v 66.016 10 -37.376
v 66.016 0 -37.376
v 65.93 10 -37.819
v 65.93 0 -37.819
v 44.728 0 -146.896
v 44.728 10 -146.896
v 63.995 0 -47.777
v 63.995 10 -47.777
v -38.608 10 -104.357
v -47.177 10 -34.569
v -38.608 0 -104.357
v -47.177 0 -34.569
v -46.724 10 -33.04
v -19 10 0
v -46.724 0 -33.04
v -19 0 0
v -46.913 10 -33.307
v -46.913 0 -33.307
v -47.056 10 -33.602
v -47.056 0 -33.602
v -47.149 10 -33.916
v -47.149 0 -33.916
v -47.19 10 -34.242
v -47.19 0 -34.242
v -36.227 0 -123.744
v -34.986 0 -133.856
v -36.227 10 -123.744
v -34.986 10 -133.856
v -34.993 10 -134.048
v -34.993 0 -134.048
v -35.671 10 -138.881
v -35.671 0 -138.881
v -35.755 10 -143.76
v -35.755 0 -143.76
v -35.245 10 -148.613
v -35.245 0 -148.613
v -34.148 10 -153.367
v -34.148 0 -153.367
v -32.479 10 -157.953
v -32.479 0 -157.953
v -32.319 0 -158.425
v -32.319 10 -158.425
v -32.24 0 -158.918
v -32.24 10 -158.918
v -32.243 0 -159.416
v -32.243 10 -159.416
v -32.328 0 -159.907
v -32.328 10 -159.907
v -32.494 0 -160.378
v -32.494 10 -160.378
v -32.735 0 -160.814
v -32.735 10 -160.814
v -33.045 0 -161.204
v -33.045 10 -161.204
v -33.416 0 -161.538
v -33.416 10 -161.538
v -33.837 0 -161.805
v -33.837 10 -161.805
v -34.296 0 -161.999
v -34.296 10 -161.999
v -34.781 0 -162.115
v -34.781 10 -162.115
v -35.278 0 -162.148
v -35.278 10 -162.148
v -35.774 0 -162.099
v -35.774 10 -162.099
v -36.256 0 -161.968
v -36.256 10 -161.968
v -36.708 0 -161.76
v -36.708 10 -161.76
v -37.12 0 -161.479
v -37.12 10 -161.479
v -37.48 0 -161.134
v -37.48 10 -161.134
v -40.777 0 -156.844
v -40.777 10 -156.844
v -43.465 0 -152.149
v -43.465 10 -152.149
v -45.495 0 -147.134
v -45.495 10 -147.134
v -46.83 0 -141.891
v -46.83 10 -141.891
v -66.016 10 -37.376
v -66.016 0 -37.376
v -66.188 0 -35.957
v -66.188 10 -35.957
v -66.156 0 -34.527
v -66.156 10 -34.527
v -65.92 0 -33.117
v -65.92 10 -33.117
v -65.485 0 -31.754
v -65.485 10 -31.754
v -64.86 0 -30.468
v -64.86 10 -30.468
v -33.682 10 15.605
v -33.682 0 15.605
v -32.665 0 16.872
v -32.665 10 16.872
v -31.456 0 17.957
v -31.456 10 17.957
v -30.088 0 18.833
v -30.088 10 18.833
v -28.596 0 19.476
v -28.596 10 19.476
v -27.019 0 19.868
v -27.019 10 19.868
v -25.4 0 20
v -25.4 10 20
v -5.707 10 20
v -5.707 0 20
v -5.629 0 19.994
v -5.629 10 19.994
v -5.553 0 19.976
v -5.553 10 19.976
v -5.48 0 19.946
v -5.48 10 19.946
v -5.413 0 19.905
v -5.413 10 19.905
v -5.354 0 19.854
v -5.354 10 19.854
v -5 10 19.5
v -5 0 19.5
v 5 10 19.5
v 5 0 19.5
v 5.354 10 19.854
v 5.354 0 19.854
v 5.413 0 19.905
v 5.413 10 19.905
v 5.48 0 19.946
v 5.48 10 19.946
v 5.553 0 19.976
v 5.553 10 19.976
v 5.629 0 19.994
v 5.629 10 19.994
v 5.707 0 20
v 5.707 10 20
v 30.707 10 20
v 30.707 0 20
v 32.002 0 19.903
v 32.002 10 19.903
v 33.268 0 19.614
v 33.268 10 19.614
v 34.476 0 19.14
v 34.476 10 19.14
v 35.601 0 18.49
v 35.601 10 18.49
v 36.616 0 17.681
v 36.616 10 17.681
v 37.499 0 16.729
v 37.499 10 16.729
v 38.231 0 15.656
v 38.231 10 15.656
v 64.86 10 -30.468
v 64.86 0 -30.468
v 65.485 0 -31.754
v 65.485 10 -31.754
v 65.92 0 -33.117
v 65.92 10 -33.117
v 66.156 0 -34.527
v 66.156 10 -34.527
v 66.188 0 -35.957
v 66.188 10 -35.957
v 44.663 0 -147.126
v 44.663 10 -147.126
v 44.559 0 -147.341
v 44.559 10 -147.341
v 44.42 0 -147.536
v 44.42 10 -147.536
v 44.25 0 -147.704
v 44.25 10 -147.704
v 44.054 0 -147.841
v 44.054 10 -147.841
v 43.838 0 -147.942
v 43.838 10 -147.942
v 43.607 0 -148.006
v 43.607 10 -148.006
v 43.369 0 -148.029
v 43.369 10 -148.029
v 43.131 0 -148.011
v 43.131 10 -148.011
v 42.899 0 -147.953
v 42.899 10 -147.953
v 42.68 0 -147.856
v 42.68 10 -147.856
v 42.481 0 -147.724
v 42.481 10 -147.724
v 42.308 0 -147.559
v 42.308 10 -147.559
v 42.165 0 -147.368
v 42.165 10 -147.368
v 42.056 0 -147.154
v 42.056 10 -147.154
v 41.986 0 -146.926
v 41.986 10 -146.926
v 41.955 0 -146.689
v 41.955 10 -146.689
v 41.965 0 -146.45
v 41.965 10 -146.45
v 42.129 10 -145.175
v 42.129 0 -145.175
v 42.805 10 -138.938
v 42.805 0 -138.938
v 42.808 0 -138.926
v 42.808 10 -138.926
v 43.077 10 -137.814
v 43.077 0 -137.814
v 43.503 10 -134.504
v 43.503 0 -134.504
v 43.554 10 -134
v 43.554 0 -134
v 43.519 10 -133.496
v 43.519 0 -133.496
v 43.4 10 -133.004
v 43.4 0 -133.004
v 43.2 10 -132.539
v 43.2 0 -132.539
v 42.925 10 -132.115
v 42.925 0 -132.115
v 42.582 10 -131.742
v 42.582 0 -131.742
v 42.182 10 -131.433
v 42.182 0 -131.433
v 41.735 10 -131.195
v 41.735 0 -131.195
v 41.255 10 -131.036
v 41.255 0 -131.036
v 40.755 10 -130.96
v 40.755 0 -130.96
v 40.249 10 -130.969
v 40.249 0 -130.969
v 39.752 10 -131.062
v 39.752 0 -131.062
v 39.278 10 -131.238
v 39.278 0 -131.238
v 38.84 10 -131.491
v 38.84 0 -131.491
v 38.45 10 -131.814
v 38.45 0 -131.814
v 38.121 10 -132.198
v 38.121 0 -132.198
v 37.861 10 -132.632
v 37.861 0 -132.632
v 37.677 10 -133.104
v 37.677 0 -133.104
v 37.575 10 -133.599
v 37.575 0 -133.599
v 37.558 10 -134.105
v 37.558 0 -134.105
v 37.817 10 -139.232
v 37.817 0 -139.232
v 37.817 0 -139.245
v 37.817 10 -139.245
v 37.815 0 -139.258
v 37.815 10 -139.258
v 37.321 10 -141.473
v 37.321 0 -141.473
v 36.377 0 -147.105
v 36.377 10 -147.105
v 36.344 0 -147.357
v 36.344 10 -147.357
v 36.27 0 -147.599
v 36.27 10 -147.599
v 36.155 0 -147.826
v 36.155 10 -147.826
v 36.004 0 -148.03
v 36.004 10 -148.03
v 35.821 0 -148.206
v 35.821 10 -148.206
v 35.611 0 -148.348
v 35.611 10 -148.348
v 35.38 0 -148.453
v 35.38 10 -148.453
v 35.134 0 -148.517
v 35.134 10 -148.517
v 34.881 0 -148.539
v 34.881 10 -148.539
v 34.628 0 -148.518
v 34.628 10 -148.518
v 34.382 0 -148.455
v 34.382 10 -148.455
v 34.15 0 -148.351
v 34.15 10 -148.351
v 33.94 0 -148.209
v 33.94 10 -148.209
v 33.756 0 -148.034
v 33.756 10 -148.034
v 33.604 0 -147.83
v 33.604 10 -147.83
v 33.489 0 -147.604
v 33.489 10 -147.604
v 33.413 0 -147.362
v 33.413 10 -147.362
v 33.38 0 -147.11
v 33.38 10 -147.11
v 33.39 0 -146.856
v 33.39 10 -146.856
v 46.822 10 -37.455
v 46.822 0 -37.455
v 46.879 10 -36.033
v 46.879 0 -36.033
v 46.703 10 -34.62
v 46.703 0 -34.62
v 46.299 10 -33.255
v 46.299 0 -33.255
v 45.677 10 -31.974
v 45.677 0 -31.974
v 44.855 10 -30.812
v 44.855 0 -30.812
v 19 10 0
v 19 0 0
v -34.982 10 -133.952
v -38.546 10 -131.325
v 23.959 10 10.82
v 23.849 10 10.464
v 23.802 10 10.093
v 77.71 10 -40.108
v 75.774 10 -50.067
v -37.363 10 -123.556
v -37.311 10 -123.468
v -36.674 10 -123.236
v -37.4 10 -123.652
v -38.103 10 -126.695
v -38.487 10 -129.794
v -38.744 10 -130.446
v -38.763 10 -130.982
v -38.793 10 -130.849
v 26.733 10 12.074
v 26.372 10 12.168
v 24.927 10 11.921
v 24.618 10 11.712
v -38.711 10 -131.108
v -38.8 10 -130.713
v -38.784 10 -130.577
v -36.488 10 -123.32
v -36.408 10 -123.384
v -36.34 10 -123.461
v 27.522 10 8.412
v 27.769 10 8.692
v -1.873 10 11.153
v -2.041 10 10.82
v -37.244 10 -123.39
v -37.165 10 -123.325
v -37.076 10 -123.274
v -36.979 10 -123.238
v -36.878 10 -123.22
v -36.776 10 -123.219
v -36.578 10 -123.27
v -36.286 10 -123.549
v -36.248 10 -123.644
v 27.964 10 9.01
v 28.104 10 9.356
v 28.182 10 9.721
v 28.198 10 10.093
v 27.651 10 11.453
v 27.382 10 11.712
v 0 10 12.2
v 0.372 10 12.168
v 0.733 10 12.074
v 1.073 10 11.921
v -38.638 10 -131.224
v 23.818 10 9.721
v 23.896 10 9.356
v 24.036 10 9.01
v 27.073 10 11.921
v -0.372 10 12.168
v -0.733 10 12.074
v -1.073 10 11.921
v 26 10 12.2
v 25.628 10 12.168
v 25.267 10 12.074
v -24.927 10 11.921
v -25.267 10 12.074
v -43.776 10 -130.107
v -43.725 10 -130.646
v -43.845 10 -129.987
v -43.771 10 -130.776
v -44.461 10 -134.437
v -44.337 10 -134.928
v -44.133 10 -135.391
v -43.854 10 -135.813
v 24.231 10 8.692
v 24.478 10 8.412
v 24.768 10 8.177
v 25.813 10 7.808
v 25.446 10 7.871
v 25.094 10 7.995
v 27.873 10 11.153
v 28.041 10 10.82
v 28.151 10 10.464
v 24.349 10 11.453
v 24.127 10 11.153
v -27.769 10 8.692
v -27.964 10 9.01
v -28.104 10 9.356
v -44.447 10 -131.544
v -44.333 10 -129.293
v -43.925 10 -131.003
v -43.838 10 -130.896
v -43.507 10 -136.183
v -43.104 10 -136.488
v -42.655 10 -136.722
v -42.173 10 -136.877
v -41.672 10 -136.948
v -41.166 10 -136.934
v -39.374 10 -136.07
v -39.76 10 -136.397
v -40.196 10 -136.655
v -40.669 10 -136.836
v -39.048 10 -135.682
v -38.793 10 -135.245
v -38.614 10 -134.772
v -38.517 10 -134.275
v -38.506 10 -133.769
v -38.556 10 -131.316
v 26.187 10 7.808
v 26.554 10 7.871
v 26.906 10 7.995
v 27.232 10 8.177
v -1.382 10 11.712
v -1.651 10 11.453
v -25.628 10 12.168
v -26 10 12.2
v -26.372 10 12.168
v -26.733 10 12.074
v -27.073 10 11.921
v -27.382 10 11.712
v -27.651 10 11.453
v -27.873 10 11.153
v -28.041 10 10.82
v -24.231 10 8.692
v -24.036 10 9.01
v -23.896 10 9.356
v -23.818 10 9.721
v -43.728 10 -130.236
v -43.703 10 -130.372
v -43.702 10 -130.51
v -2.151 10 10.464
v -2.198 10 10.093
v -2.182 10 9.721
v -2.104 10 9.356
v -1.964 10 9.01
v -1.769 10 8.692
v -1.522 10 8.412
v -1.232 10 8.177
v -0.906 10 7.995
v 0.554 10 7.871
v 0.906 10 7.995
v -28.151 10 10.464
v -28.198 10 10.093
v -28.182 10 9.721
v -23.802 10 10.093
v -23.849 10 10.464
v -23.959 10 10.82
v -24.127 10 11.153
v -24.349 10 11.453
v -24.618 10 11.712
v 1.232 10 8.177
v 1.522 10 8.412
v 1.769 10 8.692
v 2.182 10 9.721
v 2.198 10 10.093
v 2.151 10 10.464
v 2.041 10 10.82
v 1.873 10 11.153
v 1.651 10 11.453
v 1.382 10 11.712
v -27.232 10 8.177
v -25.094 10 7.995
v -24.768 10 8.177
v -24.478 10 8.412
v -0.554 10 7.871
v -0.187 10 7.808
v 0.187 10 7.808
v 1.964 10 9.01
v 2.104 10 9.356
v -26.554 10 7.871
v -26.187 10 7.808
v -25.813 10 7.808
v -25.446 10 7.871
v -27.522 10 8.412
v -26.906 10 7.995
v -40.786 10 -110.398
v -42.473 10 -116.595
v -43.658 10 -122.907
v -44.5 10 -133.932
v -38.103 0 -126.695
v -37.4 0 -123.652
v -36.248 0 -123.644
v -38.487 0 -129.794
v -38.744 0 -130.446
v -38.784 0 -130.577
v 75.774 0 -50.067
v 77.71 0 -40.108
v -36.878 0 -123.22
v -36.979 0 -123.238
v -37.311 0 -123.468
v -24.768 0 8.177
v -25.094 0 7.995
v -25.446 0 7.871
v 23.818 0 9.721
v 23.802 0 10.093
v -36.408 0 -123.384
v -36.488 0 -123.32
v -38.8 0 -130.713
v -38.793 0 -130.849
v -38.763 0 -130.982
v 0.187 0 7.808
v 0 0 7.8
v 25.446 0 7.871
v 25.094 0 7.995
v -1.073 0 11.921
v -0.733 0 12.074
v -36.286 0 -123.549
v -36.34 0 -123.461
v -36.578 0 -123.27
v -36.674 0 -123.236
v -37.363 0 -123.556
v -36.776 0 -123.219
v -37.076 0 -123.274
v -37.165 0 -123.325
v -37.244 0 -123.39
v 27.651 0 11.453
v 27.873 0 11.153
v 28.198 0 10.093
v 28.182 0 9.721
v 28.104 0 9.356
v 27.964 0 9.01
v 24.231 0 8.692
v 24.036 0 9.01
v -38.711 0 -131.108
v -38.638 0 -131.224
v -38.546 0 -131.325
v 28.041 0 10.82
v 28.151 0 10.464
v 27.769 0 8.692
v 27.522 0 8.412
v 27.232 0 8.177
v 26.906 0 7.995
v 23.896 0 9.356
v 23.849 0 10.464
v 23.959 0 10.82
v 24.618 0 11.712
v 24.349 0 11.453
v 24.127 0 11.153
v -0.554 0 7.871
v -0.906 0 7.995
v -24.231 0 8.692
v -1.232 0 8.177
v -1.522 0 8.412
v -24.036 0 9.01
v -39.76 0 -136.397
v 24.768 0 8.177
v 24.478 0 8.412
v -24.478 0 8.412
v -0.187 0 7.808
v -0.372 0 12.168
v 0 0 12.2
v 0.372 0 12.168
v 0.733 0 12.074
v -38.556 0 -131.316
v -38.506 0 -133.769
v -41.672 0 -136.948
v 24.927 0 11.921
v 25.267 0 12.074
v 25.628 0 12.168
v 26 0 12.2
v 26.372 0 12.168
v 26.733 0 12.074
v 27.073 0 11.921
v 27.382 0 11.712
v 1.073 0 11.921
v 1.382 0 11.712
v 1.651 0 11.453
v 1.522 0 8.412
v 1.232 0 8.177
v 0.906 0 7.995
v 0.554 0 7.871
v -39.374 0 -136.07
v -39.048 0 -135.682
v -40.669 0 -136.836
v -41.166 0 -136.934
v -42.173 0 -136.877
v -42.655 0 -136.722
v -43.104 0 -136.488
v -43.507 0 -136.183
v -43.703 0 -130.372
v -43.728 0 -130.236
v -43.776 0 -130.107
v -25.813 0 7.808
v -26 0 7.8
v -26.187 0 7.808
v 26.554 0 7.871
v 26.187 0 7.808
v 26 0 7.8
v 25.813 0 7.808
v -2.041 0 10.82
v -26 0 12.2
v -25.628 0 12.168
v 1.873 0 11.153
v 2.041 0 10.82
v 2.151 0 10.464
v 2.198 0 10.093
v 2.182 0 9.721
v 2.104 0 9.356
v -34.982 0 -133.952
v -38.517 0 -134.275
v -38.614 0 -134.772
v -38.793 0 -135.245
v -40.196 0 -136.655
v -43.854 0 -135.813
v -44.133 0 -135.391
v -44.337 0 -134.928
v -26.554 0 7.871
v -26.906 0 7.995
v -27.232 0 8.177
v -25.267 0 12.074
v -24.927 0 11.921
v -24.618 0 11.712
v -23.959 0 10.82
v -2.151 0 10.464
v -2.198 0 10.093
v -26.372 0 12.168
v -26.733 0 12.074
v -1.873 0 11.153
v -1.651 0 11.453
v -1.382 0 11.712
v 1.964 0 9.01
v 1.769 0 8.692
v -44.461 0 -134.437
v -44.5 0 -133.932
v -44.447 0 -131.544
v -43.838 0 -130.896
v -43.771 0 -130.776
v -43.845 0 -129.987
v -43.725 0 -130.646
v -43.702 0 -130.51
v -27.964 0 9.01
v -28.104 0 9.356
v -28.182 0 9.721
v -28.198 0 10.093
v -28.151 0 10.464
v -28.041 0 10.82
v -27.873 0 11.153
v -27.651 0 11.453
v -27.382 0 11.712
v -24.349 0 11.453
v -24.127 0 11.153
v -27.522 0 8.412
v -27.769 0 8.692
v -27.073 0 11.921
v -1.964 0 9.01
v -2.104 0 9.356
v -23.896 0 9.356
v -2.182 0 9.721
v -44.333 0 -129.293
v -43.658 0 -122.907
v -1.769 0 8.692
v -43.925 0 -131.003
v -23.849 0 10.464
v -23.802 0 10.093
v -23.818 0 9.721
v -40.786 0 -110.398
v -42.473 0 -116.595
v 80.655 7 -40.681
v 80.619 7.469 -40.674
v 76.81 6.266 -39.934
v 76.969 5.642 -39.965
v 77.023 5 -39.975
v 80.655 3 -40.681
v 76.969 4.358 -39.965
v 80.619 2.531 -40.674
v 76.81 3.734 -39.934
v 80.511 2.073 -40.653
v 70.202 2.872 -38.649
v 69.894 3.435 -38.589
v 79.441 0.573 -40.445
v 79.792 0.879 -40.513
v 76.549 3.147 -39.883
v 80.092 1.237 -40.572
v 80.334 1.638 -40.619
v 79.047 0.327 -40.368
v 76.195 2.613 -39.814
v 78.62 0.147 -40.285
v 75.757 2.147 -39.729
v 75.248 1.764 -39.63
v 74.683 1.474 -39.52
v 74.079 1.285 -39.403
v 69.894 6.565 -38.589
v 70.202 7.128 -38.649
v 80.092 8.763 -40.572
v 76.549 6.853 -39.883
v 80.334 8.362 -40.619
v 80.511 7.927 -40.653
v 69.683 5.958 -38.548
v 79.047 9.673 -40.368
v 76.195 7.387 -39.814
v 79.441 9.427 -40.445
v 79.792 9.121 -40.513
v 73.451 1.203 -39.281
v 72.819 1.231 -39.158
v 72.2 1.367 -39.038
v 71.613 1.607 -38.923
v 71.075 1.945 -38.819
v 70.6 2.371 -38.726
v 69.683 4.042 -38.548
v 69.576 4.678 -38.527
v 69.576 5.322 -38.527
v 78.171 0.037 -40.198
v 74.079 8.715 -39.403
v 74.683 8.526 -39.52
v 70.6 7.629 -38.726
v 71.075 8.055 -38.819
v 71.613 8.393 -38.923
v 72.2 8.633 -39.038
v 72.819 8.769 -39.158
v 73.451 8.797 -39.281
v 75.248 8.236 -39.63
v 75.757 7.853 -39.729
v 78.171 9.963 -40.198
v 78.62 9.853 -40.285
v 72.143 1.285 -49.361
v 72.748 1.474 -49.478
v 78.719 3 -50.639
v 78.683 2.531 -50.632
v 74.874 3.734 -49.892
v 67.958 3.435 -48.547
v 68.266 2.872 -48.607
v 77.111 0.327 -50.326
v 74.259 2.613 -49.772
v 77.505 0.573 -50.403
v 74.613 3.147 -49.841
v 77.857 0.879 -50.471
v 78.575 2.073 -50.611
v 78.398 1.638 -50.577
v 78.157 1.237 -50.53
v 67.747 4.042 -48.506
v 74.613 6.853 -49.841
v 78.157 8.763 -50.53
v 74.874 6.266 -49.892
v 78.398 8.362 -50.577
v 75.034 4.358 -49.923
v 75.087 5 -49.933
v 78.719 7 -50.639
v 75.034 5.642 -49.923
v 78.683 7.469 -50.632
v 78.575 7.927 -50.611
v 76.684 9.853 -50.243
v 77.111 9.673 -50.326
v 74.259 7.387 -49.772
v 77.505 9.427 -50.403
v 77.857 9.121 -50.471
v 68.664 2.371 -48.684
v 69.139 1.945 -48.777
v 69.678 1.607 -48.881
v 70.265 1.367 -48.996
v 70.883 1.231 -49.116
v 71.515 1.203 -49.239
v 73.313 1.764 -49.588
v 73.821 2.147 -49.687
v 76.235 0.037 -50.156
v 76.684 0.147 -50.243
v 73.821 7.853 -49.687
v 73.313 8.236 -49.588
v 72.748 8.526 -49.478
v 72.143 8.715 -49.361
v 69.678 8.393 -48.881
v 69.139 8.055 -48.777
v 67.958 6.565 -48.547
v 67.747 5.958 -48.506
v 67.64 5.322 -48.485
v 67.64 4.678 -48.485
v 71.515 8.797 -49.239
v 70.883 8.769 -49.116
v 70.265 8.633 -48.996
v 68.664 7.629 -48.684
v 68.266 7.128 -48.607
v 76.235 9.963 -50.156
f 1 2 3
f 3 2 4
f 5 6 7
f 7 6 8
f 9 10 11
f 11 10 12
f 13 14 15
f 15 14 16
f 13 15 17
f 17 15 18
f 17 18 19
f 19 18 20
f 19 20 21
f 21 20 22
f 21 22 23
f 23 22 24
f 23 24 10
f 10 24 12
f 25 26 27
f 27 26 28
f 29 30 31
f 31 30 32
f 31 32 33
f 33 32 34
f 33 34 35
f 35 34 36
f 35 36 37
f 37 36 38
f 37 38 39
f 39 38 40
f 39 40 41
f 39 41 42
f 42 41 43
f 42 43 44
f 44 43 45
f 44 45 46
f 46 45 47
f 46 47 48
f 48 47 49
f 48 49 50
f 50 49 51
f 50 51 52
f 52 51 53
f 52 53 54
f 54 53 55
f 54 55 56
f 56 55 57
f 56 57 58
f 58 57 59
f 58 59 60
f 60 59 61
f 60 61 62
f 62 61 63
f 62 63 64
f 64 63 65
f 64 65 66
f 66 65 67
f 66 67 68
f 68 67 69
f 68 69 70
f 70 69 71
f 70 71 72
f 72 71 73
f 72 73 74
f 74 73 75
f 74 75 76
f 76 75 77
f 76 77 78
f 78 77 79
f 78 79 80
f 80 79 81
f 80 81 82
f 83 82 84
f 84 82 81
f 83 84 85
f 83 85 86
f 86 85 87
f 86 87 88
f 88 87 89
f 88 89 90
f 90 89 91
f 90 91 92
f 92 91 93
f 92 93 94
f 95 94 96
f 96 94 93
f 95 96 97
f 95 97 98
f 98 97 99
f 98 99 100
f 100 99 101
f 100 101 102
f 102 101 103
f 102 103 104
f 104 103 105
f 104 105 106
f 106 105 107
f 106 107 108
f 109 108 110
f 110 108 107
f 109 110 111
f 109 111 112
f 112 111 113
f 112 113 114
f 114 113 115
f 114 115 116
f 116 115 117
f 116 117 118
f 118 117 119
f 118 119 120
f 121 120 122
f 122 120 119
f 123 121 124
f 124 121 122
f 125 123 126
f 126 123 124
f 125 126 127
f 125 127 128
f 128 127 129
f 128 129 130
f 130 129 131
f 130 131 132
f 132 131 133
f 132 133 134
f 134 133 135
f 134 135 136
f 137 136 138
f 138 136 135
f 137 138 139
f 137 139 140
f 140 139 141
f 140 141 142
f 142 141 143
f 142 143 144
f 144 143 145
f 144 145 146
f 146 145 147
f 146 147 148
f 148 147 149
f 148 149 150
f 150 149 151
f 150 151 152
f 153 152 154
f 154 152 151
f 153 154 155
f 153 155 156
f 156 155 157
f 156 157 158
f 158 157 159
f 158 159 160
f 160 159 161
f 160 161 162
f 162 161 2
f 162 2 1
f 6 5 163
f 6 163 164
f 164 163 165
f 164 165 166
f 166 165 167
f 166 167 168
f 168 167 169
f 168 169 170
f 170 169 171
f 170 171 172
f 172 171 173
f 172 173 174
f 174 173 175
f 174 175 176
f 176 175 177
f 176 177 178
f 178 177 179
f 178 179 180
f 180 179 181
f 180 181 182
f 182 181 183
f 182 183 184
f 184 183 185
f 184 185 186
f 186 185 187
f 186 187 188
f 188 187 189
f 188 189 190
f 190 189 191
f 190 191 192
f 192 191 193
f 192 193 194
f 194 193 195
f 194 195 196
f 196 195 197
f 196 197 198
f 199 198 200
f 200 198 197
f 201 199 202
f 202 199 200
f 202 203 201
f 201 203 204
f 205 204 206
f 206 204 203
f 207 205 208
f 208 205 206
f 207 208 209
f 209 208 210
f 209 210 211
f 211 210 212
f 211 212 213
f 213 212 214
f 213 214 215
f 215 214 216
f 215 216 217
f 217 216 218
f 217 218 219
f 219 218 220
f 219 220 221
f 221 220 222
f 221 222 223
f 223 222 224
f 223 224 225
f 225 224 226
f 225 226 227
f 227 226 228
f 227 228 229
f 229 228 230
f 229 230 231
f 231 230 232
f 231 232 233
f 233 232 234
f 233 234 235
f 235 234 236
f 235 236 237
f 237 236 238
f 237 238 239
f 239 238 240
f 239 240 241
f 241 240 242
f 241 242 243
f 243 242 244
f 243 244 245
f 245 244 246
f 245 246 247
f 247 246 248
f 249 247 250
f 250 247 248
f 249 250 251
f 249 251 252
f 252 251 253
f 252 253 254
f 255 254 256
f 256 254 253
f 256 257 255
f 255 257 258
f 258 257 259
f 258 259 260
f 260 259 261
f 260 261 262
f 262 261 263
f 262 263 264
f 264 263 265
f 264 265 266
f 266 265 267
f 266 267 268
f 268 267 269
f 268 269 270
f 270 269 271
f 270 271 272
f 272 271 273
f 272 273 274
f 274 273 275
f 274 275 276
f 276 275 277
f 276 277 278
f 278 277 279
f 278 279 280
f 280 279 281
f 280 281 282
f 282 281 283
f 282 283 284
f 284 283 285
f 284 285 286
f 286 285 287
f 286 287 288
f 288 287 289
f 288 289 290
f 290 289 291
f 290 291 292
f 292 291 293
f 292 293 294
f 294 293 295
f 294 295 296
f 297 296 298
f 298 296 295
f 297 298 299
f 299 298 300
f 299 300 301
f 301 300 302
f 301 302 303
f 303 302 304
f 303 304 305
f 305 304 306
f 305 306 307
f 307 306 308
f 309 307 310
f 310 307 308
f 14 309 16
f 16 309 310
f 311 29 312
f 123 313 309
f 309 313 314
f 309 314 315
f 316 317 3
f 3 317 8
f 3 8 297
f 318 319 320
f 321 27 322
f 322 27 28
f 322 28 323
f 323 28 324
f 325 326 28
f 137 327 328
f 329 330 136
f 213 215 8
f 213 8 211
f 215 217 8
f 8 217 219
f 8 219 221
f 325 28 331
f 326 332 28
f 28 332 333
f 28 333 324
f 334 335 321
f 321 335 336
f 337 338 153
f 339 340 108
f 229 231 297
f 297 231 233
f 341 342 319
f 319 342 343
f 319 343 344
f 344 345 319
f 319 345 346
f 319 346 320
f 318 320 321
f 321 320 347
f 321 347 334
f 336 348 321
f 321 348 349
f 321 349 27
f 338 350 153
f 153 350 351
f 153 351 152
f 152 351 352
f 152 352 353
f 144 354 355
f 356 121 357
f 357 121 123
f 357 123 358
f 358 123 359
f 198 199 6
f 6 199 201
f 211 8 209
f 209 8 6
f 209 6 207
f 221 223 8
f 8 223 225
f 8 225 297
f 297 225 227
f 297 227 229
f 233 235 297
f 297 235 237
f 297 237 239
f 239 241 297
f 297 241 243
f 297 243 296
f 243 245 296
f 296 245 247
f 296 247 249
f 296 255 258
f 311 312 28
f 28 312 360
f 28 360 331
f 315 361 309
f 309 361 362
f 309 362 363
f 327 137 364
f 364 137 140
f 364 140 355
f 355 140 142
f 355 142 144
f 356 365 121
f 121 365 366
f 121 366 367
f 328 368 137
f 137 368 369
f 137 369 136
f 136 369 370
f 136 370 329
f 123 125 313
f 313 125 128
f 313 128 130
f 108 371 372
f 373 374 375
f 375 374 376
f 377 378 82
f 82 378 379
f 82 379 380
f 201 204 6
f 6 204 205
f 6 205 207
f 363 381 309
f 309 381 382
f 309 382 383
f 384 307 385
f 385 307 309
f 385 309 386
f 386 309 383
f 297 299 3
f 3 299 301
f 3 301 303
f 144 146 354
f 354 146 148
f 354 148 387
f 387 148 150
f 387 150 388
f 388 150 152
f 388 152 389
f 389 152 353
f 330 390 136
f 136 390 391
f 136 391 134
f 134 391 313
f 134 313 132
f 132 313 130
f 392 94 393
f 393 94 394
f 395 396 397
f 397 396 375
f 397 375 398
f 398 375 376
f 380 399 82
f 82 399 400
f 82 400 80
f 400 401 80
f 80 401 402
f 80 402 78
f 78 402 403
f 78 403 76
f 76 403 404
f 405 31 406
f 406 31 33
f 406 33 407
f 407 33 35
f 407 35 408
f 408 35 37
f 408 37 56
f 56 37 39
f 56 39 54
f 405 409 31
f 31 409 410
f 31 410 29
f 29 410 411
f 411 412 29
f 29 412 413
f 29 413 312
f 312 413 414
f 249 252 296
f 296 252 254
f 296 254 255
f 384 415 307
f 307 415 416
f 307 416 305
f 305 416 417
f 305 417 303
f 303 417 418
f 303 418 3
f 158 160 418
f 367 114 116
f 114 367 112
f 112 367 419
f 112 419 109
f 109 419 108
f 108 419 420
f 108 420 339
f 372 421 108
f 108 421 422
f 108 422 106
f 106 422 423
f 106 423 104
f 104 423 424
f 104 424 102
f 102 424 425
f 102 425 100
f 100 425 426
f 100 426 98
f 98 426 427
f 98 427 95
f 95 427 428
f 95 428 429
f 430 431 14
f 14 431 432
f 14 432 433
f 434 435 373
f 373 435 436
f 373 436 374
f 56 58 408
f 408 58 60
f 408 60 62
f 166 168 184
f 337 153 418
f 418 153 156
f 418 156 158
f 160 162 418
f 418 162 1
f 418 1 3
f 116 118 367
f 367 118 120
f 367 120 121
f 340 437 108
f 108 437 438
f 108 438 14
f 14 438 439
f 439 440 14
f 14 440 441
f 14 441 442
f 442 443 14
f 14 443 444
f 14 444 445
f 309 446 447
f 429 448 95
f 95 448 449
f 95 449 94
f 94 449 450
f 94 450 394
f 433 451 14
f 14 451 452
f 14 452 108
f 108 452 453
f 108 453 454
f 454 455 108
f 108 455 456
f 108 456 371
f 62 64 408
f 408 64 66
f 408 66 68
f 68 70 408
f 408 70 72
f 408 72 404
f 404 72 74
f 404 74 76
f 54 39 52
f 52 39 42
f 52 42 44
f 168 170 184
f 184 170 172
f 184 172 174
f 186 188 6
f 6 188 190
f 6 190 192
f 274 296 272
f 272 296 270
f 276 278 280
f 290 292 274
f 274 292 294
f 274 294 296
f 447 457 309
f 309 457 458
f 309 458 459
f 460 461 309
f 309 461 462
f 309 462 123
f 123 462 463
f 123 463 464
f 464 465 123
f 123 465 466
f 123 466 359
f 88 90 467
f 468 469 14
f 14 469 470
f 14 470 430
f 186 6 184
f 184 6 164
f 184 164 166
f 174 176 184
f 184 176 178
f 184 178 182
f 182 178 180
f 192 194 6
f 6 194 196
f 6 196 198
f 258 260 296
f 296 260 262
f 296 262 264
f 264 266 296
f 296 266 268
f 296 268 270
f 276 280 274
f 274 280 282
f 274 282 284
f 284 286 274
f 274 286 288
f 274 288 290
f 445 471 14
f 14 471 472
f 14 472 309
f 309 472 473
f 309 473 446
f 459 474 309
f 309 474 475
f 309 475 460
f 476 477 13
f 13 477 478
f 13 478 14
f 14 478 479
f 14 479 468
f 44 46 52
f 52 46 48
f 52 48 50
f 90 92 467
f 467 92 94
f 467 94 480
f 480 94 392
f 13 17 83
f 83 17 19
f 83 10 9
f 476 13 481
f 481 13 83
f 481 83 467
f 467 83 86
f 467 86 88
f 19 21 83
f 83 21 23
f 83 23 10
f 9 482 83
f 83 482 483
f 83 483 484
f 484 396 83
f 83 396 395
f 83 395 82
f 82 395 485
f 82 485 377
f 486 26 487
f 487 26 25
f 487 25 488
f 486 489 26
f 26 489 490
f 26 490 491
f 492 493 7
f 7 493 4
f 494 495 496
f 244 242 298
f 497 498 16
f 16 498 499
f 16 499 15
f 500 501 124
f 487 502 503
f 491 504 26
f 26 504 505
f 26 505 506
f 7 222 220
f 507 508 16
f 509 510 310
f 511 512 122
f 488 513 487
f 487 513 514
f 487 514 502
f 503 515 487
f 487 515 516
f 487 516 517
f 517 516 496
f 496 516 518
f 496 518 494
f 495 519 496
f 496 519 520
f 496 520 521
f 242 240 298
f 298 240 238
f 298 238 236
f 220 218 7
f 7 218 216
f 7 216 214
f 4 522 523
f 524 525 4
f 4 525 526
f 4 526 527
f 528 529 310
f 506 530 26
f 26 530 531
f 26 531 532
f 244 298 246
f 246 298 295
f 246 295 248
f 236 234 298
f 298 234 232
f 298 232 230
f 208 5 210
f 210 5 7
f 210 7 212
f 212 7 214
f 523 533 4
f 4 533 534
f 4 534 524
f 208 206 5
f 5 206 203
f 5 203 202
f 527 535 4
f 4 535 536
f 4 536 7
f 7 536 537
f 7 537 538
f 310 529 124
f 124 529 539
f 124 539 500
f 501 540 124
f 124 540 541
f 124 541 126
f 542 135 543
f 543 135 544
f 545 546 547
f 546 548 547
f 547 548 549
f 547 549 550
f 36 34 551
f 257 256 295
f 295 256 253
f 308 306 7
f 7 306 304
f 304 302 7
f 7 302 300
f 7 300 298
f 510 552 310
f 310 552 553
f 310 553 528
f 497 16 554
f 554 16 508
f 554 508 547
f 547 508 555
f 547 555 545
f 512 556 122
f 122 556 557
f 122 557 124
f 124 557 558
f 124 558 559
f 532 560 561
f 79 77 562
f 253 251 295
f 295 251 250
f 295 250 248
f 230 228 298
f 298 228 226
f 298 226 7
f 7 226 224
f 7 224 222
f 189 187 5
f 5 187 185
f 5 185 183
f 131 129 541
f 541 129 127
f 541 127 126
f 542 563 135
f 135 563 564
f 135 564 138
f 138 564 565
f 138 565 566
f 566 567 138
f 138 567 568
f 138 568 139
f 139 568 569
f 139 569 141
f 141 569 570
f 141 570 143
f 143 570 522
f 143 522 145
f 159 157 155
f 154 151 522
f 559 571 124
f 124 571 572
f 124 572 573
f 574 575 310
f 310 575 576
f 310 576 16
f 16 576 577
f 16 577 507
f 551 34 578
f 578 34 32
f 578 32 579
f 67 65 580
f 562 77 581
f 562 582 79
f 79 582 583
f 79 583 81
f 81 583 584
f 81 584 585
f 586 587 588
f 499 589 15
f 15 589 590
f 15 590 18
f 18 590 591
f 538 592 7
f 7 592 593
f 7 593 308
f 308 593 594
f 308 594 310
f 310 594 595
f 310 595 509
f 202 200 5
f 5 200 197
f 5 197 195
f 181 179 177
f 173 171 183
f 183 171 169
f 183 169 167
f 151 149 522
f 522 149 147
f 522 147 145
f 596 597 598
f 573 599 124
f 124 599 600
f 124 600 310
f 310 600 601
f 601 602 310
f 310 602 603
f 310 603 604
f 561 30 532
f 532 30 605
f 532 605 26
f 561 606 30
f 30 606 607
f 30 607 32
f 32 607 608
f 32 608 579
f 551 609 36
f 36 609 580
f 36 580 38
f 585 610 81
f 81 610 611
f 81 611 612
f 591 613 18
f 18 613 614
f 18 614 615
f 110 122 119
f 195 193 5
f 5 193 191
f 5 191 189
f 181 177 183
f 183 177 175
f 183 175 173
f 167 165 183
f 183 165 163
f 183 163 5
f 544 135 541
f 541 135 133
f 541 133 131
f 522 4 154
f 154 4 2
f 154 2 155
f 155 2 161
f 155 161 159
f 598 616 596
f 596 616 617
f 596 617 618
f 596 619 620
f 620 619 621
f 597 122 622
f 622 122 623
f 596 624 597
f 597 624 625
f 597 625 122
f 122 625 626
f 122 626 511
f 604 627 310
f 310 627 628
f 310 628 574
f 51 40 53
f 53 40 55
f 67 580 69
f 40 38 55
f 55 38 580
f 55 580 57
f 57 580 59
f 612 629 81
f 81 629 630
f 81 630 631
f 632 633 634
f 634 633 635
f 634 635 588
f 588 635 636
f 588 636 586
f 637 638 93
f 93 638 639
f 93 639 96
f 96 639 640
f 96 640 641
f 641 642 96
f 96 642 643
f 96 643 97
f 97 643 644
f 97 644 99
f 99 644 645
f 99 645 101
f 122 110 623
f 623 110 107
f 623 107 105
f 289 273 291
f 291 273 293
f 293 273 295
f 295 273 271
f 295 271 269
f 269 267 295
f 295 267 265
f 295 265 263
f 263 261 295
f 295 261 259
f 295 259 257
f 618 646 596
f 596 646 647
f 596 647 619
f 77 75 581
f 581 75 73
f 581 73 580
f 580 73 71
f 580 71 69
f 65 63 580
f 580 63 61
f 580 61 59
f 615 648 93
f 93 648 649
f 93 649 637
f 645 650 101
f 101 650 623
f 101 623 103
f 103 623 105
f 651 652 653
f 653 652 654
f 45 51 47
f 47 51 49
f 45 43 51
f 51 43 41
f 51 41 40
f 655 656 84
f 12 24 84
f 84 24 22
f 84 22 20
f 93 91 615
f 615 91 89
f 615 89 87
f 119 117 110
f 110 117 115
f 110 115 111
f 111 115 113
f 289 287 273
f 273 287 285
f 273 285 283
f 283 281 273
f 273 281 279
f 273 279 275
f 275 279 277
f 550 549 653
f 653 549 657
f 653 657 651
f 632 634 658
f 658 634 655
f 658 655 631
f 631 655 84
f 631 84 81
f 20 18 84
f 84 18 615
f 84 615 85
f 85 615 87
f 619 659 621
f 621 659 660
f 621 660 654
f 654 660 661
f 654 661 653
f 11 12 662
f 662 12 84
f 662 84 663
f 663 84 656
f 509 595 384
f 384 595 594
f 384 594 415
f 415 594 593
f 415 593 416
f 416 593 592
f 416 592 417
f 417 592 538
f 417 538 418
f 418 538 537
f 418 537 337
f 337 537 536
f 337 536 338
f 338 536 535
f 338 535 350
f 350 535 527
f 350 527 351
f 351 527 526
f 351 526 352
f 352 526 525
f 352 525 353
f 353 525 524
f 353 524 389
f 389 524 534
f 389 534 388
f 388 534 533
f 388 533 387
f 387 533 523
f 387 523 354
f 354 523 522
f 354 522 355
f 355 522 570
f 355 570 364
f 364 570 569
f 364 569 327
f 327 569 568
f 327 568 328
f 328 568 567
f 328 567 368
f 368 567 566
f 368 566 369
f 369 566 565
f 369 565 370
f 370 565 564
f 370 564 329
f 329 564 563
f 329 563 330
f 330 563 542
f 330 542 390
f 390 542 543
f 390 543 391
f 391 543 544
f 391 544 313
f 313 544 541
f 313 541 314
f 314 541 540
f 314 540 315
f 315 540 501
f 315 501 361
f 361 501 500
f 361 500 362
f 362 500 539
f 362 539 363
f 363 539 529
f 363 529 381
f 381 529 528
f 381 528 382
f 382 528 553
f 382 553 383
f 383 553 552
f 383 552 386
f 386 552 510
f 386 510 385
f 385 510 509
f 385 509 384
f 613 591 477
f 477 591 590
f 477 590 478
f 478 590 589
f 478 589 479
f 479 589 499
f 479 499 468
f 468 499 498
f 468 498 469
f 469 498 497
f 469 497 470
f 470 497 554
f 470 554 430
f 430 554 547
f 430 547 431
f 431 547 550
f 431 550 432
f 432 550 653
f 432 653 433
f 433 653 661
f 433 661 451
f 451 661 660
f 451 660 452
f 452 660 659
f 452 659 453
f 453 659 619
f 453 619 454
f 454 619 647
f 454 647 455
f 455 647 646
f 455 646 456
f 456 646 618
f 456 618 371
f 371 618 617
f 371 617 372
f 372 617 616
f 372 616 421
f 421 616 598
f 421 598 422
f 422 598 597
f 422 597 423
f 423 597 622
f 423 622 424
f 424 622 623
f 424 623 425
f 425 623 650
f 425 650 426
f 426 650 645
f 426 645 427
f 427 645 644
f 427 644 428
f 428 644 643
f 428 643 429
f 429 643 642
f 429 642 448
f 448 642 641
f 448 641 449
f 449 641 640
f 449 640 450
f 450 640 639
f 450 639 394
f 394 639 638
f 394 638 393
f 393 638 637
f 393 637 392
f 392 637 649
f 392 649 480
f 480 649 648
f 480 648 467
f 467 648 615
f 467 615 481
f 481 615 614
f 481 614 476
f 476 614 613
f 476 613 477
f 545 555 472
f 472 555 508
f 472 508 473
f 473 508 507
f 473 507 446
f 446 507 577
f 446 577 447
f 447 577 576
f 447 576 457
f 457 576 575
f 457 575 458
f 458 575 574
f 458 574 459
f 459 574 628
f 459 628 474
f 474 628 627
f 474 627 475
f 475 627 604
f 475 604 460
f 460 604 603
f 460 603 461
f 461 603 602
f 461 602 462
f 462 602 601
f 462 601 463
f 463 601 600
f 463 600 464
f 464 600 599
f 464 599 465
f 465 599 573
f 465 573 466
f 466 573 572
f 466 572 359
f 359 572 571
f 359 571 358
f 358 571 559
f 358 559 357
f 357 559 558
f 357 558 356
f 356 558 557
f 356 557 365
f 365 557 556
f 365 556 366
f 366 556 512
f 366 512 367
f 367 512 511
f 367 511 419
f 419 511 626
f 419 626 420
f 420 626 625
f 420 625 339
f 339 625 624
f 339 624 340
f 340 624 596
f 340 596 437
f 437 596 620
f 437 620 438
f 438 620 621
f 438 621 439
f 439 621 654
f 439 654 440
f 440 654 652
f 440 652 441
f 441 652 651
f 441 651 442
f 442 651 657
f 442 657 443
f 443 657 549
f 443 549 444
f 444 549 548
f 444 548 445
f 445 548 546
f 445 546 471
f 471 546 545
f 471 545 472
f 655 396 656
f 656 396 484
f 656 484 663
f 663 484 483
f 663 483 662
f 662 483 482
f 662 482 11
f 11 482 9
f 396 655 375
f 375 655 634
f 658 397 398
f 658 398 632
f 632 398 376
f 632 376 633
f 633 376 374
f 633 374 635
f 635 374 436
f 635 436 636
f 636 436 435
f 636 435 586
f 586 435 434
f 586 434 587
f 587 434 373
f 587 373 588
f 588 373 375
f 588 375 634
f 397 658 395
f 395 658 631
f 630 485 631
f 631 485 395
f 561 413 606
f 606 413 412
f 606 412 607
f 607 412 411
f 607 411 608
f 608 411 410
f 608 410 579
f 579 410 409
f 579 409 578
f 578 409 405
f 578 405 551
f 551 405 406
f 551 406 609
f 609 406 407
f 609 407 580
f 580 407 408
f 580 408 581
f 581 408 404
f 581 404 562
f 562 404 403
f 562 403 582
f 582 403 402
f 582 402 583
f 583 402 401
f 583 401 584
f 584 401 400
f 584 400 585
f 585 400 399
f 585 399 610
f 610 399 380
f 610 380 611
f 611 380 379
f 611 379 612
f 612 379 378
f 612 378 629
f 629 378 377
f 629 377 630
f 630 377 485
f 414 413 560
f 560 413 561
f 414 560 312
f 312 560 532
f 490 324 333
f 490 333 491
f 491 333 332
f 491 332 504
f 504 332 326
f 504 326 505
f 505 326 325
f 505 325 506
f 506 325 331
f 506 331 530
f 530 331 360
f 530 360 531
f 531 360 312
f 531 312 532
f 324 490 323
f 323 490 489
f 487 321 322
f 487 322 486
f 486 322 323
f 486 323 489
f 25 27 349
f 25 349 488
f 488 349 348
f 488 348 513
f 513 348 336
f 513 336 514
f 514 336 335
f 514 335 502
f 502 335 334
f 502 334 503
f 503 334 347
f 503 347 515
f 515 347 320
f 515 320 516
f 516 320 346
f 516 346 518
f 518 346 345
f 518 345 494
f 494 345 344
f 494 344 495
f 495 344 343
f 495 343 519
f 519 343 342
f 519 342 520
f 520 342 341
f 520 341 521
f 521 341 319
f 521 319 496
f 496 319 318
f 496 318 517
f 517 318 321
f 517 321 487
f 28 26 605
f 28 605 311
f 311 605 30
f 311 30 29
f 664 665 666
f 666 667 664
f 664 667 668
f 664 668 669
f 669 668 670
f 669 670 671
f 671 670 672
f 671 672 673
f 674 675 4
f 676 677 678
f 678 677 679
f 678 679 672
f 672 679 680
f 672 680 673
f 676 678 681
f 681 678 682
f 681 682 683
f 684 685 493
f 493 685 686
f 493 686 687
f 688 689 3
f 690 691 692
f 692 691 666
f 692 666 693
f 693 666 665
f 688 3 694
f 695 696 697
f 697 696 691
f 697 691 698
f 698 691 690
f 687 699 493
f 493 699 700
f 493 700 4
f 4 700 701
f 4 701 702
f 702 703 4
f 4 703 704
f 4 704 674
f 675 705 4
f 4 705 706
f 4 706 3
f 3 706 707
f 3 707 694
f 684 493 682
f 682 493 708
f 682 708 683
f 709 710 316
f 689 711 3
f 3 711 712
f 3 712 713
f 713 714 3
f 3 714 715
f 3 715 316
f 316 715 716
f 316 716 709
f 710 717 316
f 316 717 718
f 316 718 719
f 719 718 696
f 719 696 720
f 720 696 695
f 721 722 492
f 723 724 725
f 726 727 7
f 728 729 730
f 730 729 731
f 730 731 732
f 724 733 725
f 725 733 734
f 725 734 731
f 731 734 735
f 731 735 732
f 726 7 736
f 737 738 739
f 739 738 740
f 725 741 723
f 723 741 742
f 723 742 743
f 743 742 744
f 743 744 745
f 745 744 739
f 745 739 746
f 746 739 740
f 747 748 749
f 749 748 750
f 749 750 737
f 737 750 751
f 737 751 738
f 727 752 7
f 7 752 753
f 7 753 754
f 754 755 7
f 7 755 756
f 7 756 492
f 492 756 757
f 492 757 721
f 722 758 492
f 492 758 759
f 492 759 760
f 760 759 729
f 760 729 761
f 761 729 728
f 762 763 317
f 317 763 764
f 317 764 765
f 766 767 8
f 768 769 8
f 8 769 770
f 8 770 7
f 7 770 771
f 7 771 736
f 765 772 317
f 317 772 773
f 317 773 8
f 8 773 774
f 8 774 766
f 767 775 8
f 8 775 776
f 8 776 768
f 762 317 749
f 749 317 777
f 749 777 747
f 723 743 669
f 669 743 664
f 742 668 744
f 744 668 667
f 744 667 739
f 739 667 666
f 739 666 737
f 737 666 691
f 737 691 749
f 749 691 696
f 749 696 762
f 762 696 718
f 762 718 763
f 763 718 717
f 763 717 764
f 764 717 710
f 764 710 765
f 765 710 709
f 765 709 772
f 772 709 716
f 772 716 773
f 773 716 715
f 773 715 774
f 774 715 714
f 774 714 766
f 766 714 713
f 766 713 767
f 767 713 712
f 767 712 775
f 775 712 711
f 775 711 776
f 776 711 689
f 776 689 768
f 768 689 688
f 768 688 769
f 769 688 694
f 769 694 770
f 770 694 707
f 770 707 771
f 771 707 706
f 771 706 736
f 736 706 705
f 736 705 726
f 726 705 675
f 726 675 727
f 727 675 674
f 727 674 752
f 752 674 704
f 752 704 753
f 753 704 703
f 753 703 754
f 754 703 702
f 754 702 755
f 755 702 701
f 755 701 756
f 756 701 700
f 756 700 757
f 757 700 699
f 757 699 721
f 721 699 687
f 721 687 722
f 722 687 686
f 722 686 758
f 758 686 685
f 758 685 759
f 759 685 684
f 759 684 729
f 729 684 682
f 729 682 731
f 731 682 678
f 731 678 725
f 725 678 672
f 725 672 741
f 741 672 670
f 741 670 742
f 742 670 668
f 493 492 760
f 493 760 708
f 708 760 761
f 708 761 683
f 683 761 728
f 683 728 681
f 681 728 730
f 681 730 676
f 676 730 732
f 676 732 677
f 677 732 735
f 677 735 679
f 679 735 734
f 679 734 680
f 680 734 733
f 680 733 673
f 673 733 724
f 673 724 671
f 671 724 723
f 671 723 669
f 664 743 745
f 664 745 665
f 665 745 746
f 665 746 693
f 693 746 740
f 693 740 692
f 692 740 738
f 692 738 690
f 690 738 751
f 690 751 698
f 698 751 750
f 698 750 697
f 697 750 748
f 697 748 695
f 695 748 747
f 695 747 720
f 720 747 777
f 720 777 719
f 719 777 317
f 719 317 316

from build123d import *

# Parameters (mm, degrees)
EXTRUDE_1_DEPTH     = 10
CUT_EXTRUDE_1_REACH = 177.427
SKETCH_2_R          = 2.2
FILLET_1_R          = 0.6
SKETCH_3_W          = 10.144437824
SKETCH_3_H          = 10
EXTRUDE_2_DEPTH     = 15
CUT_EXTRUDE_2_REACH = 164.61
SKETCH_4_R          = 3.8
FILLET_2_R          = 3


with BuildPart() as part:
    # 草图1 → 凸台-拉伸1 (new body)
    with BuildSketch(Plane(origin=(0, 0, 0), x_dir=(1, 0, 0), z_dir=(0, 1, 0))):
        with BuildLine():
            Line((-19, 0), (19, 0))
            Line((19, 0), (44.854614973, 30.81233028))
            ThreePointArc((44.854614973, 30.81233028), (46.529317931, 33.929104052), (46.82231051, 37.455159084))
            Line((46.82231051, 37.455159084), (33.389549678, 146.856216784))
            ThreePointArc((33.389549678, 146.856216784), (34.753999407, 148.533855984), (36.376927445, 147.104765038))
            ThreePointArc((36.376927445, 147.104765038), (36.892496808, 144.296291333), (37.320815542, 141.473193853))
            Line((37.320815542, 141.473193853), (37.815132232, 139.258398169))
            ThreePointArc((37.815132232, 139.258398169), (37.817176658, 139.245056143), (37.817405692, 139.231560332))
            Line((37.817405692, 139.231560332), (37.557917484, 134.104765038))
            ThreePointArc((37.557917484, 134.104765038), (40.754926912, 130.959847465), (43.503129215, 134.503681536))
            Line((43.503129215, 134.503681536), (43.077003941, 137.813685213))
            Line((43.077003941, 137.813685213), (42.807637334, 138.925557366))
            ThreePointArc((42.807637334, 138.925557366), (42.806315787, 138.931905108), (42.80540838, 138.938325149))
            Line((42.80540838, 138.938325149), (42.129277547, 145.175318139))
            Line((42.129277547, 145.175318139), (41.965181023, 146.44996701))
            ThreePointArc((41.965181023, 146.44996701), (43.130662006, 148.010841711), (44.727999785, 146.895858405))
            Line((44.727999785, 146.895858405), (66.016482503, 37.376109146))
            ThreePointArc((66.016482503, 37.376109146), (66.063066684, 33.817543133), (64.860464706, 30.468019192))
            Line((64.860464706, 30.468019192), (38.23055697, -15.656334008))
            ThreePointArc((38.23055697, -15.656334008), (35.050772773, -18.836118205), (30.707106781, -20))
            Line((30.707106781, -20), (5.707106781, -20))
            ThreePointArc((5.707106781, -20), (5.515765065, -19.961939766), (5.353553391, -19.853553391))
            Line((5.353553391, -19.853553391), (5, -19.5))
            Line((5, -19.5), (-5, -19.5))
            Line((-5, -19.5), (-5.353553391, -19.853553391))
            ThreePointArc((-5.353553391, -19.853553391), (-5.515765065, -19.961939766), (-5.707106781, -20))
            Line((-5.707106781, -20), (-25.399802658, -20))
            ThreePointArc((-25.399802658, -20), (-30.087775174, -18.833058003), (-33.681629288, -15.604582738))
            Line((-33.681629288, -15.604582738), (-64.860464706, 30.468019192))
            ThreePointArc((-64.860464706, 30.468019192), (-66.063066684, 33.817543133), (-66.016482503, 37.376109146))
            Line((-66.016482503, 37.376109146), (-46.829620455, 141.890886738))
            ThreePointArc((-46.829620455, 141.890886738), (-43.465252598, 152.148967586), (-37.480163066, 161.13372674))
            ThreePointArc((-37.480163066, 161.13372674), (-33.620696298, 161.680216975), (-32.479267504, 157.953116813))
            ThreePointArc((-32.479267504, 157.953116813), (-35.579400499, 146.14570295), (-34.973851142, 133.953116813))
            Line((-34.973851142, 133.953116813), (-47.176674229, 34.569098196))
            ThreePointArc((-47.176674229, 34.569098196), (-47.109221395, 33.75732882), (-46.723670812, 33.03978429))
            Line((-46.723670812, 33.03978429), (-19, 0))
        make_face()
    extrude(amount=EXTRUDE_1_DEPTH)

    # 草图2 → 切除-拉伸1 (cut, up to next)
    with BuildSketch(Plane(origin=(0, 10, 0), x_dir=(1, 0, 0), z_dir=(0, 1, 0)), mode=Mode.PRIVATE) as cut_extrude_1_sk1:
        with Locations(Location((0, -10, 0), (0, 0, 270))):
            Circle(SKETCH_2_R)
    cut_extrude_1_tool1 = extrude(cut_extrude_1_sk1.sketch, amount=-CUT_EXTRUDE_1_REACH, mode=Mode.PRIVATE) & part.part
    # 草图2 → 切除-拉伸1 (cut, up to next)
    with BuildSketch(Plane(origin=(0, 10, 0), x_dir=(1, 0, 0), z_dir=(0, 1, 0)), mode=Mode.PRIVATE) as cut_extrude_1_sk2:
        with Locations(Location((-26, -10, 0), (0, 0, 270))):
            Circle(SKETCH_2_R)
    cut_extrude_1_tool2 = extrude(cut_extrude_1_sk2.sketch, amount=-CUT_EXTRUDE_1_REACH, mode=Mode.PRIVATE) & part.part
    # 草图2 → 切除-拉伸1 (cut, up to next)
    with BuildSketch(Plane(origin=(0, 10, 0), x_dir=(1, 0, 0), z_dir=(0, 1, 0)), mode=Mode.PRIVATE) as cut_extrude_1_sk3:
        with Locations(Location((26, -10, 0), (0, 0, 270))):
            Circle(SKETCH_2_R)
    cut_extrude_1_tool3 = extrude(cut_extrude_1_sk3.sketch, amount=-CUT_EXTRUDE_1_REACH, mode=Mode.PRIVATE) & part.part
    # 草图2 → 切除-拉伸1 (cut, up to next)
    with BuildSketch(Plane(origin=(0, 10, 0), x_dir=(1, 0, 0), z_dir=(0, 1, 0)), mode=Mode.PRIVATE) as cut_extrude_1_sk4:
        with BuildLine():
            Line((-36.549558395, 121.120011078), (-38.607748185, 104.35740041))
            ThreePointArc((-38.607748185, 104.35740041), (-42.47341142, 116.594845153), (-44.332546284, 129.292956179))
            Line((-44.332546284, 129.292956179), (-43.845113062, 129.987442667))
            ThreePointArc((-43.845113062, 129.987442667), (-43.702378092, 130.509625408), (-43.924830211, 131.003146575))
            Line((-43.924830211, 131.003146575), (-44.447419993, 131.543571067))
            ThreePointArc((-44.447419993, 131.543571067), (-44.482588605, 132.737575539), (-44.499925482, 133.931972015))
            ThreePointArc((-44.499925482, 133.931972015), (-41.418283025, 136.952003662), (-38.505677682, 133.768634142))
            ThreePointArc((-38.505677682, 133.768634142), (-38.556072369, 132.542586282), (-38.556286633, 131.315503182))
            Line((-38.556286633, 131.315503182), (-38.546052546, 131.325051295))
            ThreePointArc((-38.546052546, 131.325051295), (-38.780683801, 130.91622187), (-38.744387532, 130.446247504))
            Line((-38.744387532, 130.446247504), (-38.486748585, 129.793872308))
            ThreePointArc((-38.486748585, 129.793872308), (-37.841140795, 125.384806825), (-36.549558395, 121.120011078))
        make_face()
    cut_extrude_1_tool4 = extrude(cut_extrude_1_sk4.sketch, amount=-CUT_EXTRUDE_1_REACH, mode=Mode.PRIVATE) & part.part
    add(cut_extrude_1_tool1.solids().sort_by_distance((0, 10, 10))[0], mode=Mode.SUBTRACT)
    add(cut_extrude_1_tool2.solids().sort_by_distance((-26, 10, 10))[0], mode=Mode.SUBTRACT)
    add(cut_extrude_1_tool3.solids().sort_by_distance((26, 10, 10))[0], mode=Mode.SUBTRACT)
    add(cut_extrude_1_tool4.solids().sort_by_distance((-40.502089, 10, -123.156617))[0], mode=Mode.SUBTRACT)

    # 圆角1
    fillet_1_edges = [part.edges().sort_by_distance(p)[0] for p in [
        (-36.549558395, 5, -121.120011078),
        (-34.973851142, 5, -133.953116813),
    ]]
    fillet(fillet_1_edges, radius=FILLET_1_R)

    # 草图3 → 凸台-拉伸2 (add)
    with BuildSketch(Plane(origin=(70.613618069, 0, -13.725896909), x_dir=(-0.19080899537654988, 0, -0.9816271834476631), z_dir=(0.9816271834476631, 0, -0.19080899537654988))):
        with Locations((29.616052291, 5)):
            Rectangle(SKETCH_3_W, SKETCH_3_H)
    extrude(amount=EXTRUDE_2_DEPTH)

    # 草图4 → 切除-拉伸2 (cut, up to next)
    with BuildSketch(Plane(origin=(-4.68318419, 0, -24.092894031), x_dir=(0.981627183447663, 0, -0.19080899537654997), z_dir=(0.19080899537654997, 0, 0.981627183447663)), mode=Mode.PRIVATE) as cut_extrude_2_sk1:
        with Locations((79.435271618, 5)):
            Circle(SKETCH_4_R)
    cut_extrude_2_tool1 = extrude(cut_extrude_2_sk1.sketch, amount=-CUT_EXTRUDE_2_REACH, mode=Mode.PRIVATE) & part.part
    add(cut_extrude_2_tool1.solids().sort_by_distance((73.292638, 5, -39.249858))[0], mode=Mode.SUBTRACT)

    # 圆角2
    fillet_2_edges = [part.edges().sort_by_distance(p)[0] for p in [
        (79.687016636, 0, -45.659953836),
        (79.687016636, 10, -45.659953836),
    ]]
    fillet(fillet_2_edges, radius=FILLET_2_R)


solid = part.part
